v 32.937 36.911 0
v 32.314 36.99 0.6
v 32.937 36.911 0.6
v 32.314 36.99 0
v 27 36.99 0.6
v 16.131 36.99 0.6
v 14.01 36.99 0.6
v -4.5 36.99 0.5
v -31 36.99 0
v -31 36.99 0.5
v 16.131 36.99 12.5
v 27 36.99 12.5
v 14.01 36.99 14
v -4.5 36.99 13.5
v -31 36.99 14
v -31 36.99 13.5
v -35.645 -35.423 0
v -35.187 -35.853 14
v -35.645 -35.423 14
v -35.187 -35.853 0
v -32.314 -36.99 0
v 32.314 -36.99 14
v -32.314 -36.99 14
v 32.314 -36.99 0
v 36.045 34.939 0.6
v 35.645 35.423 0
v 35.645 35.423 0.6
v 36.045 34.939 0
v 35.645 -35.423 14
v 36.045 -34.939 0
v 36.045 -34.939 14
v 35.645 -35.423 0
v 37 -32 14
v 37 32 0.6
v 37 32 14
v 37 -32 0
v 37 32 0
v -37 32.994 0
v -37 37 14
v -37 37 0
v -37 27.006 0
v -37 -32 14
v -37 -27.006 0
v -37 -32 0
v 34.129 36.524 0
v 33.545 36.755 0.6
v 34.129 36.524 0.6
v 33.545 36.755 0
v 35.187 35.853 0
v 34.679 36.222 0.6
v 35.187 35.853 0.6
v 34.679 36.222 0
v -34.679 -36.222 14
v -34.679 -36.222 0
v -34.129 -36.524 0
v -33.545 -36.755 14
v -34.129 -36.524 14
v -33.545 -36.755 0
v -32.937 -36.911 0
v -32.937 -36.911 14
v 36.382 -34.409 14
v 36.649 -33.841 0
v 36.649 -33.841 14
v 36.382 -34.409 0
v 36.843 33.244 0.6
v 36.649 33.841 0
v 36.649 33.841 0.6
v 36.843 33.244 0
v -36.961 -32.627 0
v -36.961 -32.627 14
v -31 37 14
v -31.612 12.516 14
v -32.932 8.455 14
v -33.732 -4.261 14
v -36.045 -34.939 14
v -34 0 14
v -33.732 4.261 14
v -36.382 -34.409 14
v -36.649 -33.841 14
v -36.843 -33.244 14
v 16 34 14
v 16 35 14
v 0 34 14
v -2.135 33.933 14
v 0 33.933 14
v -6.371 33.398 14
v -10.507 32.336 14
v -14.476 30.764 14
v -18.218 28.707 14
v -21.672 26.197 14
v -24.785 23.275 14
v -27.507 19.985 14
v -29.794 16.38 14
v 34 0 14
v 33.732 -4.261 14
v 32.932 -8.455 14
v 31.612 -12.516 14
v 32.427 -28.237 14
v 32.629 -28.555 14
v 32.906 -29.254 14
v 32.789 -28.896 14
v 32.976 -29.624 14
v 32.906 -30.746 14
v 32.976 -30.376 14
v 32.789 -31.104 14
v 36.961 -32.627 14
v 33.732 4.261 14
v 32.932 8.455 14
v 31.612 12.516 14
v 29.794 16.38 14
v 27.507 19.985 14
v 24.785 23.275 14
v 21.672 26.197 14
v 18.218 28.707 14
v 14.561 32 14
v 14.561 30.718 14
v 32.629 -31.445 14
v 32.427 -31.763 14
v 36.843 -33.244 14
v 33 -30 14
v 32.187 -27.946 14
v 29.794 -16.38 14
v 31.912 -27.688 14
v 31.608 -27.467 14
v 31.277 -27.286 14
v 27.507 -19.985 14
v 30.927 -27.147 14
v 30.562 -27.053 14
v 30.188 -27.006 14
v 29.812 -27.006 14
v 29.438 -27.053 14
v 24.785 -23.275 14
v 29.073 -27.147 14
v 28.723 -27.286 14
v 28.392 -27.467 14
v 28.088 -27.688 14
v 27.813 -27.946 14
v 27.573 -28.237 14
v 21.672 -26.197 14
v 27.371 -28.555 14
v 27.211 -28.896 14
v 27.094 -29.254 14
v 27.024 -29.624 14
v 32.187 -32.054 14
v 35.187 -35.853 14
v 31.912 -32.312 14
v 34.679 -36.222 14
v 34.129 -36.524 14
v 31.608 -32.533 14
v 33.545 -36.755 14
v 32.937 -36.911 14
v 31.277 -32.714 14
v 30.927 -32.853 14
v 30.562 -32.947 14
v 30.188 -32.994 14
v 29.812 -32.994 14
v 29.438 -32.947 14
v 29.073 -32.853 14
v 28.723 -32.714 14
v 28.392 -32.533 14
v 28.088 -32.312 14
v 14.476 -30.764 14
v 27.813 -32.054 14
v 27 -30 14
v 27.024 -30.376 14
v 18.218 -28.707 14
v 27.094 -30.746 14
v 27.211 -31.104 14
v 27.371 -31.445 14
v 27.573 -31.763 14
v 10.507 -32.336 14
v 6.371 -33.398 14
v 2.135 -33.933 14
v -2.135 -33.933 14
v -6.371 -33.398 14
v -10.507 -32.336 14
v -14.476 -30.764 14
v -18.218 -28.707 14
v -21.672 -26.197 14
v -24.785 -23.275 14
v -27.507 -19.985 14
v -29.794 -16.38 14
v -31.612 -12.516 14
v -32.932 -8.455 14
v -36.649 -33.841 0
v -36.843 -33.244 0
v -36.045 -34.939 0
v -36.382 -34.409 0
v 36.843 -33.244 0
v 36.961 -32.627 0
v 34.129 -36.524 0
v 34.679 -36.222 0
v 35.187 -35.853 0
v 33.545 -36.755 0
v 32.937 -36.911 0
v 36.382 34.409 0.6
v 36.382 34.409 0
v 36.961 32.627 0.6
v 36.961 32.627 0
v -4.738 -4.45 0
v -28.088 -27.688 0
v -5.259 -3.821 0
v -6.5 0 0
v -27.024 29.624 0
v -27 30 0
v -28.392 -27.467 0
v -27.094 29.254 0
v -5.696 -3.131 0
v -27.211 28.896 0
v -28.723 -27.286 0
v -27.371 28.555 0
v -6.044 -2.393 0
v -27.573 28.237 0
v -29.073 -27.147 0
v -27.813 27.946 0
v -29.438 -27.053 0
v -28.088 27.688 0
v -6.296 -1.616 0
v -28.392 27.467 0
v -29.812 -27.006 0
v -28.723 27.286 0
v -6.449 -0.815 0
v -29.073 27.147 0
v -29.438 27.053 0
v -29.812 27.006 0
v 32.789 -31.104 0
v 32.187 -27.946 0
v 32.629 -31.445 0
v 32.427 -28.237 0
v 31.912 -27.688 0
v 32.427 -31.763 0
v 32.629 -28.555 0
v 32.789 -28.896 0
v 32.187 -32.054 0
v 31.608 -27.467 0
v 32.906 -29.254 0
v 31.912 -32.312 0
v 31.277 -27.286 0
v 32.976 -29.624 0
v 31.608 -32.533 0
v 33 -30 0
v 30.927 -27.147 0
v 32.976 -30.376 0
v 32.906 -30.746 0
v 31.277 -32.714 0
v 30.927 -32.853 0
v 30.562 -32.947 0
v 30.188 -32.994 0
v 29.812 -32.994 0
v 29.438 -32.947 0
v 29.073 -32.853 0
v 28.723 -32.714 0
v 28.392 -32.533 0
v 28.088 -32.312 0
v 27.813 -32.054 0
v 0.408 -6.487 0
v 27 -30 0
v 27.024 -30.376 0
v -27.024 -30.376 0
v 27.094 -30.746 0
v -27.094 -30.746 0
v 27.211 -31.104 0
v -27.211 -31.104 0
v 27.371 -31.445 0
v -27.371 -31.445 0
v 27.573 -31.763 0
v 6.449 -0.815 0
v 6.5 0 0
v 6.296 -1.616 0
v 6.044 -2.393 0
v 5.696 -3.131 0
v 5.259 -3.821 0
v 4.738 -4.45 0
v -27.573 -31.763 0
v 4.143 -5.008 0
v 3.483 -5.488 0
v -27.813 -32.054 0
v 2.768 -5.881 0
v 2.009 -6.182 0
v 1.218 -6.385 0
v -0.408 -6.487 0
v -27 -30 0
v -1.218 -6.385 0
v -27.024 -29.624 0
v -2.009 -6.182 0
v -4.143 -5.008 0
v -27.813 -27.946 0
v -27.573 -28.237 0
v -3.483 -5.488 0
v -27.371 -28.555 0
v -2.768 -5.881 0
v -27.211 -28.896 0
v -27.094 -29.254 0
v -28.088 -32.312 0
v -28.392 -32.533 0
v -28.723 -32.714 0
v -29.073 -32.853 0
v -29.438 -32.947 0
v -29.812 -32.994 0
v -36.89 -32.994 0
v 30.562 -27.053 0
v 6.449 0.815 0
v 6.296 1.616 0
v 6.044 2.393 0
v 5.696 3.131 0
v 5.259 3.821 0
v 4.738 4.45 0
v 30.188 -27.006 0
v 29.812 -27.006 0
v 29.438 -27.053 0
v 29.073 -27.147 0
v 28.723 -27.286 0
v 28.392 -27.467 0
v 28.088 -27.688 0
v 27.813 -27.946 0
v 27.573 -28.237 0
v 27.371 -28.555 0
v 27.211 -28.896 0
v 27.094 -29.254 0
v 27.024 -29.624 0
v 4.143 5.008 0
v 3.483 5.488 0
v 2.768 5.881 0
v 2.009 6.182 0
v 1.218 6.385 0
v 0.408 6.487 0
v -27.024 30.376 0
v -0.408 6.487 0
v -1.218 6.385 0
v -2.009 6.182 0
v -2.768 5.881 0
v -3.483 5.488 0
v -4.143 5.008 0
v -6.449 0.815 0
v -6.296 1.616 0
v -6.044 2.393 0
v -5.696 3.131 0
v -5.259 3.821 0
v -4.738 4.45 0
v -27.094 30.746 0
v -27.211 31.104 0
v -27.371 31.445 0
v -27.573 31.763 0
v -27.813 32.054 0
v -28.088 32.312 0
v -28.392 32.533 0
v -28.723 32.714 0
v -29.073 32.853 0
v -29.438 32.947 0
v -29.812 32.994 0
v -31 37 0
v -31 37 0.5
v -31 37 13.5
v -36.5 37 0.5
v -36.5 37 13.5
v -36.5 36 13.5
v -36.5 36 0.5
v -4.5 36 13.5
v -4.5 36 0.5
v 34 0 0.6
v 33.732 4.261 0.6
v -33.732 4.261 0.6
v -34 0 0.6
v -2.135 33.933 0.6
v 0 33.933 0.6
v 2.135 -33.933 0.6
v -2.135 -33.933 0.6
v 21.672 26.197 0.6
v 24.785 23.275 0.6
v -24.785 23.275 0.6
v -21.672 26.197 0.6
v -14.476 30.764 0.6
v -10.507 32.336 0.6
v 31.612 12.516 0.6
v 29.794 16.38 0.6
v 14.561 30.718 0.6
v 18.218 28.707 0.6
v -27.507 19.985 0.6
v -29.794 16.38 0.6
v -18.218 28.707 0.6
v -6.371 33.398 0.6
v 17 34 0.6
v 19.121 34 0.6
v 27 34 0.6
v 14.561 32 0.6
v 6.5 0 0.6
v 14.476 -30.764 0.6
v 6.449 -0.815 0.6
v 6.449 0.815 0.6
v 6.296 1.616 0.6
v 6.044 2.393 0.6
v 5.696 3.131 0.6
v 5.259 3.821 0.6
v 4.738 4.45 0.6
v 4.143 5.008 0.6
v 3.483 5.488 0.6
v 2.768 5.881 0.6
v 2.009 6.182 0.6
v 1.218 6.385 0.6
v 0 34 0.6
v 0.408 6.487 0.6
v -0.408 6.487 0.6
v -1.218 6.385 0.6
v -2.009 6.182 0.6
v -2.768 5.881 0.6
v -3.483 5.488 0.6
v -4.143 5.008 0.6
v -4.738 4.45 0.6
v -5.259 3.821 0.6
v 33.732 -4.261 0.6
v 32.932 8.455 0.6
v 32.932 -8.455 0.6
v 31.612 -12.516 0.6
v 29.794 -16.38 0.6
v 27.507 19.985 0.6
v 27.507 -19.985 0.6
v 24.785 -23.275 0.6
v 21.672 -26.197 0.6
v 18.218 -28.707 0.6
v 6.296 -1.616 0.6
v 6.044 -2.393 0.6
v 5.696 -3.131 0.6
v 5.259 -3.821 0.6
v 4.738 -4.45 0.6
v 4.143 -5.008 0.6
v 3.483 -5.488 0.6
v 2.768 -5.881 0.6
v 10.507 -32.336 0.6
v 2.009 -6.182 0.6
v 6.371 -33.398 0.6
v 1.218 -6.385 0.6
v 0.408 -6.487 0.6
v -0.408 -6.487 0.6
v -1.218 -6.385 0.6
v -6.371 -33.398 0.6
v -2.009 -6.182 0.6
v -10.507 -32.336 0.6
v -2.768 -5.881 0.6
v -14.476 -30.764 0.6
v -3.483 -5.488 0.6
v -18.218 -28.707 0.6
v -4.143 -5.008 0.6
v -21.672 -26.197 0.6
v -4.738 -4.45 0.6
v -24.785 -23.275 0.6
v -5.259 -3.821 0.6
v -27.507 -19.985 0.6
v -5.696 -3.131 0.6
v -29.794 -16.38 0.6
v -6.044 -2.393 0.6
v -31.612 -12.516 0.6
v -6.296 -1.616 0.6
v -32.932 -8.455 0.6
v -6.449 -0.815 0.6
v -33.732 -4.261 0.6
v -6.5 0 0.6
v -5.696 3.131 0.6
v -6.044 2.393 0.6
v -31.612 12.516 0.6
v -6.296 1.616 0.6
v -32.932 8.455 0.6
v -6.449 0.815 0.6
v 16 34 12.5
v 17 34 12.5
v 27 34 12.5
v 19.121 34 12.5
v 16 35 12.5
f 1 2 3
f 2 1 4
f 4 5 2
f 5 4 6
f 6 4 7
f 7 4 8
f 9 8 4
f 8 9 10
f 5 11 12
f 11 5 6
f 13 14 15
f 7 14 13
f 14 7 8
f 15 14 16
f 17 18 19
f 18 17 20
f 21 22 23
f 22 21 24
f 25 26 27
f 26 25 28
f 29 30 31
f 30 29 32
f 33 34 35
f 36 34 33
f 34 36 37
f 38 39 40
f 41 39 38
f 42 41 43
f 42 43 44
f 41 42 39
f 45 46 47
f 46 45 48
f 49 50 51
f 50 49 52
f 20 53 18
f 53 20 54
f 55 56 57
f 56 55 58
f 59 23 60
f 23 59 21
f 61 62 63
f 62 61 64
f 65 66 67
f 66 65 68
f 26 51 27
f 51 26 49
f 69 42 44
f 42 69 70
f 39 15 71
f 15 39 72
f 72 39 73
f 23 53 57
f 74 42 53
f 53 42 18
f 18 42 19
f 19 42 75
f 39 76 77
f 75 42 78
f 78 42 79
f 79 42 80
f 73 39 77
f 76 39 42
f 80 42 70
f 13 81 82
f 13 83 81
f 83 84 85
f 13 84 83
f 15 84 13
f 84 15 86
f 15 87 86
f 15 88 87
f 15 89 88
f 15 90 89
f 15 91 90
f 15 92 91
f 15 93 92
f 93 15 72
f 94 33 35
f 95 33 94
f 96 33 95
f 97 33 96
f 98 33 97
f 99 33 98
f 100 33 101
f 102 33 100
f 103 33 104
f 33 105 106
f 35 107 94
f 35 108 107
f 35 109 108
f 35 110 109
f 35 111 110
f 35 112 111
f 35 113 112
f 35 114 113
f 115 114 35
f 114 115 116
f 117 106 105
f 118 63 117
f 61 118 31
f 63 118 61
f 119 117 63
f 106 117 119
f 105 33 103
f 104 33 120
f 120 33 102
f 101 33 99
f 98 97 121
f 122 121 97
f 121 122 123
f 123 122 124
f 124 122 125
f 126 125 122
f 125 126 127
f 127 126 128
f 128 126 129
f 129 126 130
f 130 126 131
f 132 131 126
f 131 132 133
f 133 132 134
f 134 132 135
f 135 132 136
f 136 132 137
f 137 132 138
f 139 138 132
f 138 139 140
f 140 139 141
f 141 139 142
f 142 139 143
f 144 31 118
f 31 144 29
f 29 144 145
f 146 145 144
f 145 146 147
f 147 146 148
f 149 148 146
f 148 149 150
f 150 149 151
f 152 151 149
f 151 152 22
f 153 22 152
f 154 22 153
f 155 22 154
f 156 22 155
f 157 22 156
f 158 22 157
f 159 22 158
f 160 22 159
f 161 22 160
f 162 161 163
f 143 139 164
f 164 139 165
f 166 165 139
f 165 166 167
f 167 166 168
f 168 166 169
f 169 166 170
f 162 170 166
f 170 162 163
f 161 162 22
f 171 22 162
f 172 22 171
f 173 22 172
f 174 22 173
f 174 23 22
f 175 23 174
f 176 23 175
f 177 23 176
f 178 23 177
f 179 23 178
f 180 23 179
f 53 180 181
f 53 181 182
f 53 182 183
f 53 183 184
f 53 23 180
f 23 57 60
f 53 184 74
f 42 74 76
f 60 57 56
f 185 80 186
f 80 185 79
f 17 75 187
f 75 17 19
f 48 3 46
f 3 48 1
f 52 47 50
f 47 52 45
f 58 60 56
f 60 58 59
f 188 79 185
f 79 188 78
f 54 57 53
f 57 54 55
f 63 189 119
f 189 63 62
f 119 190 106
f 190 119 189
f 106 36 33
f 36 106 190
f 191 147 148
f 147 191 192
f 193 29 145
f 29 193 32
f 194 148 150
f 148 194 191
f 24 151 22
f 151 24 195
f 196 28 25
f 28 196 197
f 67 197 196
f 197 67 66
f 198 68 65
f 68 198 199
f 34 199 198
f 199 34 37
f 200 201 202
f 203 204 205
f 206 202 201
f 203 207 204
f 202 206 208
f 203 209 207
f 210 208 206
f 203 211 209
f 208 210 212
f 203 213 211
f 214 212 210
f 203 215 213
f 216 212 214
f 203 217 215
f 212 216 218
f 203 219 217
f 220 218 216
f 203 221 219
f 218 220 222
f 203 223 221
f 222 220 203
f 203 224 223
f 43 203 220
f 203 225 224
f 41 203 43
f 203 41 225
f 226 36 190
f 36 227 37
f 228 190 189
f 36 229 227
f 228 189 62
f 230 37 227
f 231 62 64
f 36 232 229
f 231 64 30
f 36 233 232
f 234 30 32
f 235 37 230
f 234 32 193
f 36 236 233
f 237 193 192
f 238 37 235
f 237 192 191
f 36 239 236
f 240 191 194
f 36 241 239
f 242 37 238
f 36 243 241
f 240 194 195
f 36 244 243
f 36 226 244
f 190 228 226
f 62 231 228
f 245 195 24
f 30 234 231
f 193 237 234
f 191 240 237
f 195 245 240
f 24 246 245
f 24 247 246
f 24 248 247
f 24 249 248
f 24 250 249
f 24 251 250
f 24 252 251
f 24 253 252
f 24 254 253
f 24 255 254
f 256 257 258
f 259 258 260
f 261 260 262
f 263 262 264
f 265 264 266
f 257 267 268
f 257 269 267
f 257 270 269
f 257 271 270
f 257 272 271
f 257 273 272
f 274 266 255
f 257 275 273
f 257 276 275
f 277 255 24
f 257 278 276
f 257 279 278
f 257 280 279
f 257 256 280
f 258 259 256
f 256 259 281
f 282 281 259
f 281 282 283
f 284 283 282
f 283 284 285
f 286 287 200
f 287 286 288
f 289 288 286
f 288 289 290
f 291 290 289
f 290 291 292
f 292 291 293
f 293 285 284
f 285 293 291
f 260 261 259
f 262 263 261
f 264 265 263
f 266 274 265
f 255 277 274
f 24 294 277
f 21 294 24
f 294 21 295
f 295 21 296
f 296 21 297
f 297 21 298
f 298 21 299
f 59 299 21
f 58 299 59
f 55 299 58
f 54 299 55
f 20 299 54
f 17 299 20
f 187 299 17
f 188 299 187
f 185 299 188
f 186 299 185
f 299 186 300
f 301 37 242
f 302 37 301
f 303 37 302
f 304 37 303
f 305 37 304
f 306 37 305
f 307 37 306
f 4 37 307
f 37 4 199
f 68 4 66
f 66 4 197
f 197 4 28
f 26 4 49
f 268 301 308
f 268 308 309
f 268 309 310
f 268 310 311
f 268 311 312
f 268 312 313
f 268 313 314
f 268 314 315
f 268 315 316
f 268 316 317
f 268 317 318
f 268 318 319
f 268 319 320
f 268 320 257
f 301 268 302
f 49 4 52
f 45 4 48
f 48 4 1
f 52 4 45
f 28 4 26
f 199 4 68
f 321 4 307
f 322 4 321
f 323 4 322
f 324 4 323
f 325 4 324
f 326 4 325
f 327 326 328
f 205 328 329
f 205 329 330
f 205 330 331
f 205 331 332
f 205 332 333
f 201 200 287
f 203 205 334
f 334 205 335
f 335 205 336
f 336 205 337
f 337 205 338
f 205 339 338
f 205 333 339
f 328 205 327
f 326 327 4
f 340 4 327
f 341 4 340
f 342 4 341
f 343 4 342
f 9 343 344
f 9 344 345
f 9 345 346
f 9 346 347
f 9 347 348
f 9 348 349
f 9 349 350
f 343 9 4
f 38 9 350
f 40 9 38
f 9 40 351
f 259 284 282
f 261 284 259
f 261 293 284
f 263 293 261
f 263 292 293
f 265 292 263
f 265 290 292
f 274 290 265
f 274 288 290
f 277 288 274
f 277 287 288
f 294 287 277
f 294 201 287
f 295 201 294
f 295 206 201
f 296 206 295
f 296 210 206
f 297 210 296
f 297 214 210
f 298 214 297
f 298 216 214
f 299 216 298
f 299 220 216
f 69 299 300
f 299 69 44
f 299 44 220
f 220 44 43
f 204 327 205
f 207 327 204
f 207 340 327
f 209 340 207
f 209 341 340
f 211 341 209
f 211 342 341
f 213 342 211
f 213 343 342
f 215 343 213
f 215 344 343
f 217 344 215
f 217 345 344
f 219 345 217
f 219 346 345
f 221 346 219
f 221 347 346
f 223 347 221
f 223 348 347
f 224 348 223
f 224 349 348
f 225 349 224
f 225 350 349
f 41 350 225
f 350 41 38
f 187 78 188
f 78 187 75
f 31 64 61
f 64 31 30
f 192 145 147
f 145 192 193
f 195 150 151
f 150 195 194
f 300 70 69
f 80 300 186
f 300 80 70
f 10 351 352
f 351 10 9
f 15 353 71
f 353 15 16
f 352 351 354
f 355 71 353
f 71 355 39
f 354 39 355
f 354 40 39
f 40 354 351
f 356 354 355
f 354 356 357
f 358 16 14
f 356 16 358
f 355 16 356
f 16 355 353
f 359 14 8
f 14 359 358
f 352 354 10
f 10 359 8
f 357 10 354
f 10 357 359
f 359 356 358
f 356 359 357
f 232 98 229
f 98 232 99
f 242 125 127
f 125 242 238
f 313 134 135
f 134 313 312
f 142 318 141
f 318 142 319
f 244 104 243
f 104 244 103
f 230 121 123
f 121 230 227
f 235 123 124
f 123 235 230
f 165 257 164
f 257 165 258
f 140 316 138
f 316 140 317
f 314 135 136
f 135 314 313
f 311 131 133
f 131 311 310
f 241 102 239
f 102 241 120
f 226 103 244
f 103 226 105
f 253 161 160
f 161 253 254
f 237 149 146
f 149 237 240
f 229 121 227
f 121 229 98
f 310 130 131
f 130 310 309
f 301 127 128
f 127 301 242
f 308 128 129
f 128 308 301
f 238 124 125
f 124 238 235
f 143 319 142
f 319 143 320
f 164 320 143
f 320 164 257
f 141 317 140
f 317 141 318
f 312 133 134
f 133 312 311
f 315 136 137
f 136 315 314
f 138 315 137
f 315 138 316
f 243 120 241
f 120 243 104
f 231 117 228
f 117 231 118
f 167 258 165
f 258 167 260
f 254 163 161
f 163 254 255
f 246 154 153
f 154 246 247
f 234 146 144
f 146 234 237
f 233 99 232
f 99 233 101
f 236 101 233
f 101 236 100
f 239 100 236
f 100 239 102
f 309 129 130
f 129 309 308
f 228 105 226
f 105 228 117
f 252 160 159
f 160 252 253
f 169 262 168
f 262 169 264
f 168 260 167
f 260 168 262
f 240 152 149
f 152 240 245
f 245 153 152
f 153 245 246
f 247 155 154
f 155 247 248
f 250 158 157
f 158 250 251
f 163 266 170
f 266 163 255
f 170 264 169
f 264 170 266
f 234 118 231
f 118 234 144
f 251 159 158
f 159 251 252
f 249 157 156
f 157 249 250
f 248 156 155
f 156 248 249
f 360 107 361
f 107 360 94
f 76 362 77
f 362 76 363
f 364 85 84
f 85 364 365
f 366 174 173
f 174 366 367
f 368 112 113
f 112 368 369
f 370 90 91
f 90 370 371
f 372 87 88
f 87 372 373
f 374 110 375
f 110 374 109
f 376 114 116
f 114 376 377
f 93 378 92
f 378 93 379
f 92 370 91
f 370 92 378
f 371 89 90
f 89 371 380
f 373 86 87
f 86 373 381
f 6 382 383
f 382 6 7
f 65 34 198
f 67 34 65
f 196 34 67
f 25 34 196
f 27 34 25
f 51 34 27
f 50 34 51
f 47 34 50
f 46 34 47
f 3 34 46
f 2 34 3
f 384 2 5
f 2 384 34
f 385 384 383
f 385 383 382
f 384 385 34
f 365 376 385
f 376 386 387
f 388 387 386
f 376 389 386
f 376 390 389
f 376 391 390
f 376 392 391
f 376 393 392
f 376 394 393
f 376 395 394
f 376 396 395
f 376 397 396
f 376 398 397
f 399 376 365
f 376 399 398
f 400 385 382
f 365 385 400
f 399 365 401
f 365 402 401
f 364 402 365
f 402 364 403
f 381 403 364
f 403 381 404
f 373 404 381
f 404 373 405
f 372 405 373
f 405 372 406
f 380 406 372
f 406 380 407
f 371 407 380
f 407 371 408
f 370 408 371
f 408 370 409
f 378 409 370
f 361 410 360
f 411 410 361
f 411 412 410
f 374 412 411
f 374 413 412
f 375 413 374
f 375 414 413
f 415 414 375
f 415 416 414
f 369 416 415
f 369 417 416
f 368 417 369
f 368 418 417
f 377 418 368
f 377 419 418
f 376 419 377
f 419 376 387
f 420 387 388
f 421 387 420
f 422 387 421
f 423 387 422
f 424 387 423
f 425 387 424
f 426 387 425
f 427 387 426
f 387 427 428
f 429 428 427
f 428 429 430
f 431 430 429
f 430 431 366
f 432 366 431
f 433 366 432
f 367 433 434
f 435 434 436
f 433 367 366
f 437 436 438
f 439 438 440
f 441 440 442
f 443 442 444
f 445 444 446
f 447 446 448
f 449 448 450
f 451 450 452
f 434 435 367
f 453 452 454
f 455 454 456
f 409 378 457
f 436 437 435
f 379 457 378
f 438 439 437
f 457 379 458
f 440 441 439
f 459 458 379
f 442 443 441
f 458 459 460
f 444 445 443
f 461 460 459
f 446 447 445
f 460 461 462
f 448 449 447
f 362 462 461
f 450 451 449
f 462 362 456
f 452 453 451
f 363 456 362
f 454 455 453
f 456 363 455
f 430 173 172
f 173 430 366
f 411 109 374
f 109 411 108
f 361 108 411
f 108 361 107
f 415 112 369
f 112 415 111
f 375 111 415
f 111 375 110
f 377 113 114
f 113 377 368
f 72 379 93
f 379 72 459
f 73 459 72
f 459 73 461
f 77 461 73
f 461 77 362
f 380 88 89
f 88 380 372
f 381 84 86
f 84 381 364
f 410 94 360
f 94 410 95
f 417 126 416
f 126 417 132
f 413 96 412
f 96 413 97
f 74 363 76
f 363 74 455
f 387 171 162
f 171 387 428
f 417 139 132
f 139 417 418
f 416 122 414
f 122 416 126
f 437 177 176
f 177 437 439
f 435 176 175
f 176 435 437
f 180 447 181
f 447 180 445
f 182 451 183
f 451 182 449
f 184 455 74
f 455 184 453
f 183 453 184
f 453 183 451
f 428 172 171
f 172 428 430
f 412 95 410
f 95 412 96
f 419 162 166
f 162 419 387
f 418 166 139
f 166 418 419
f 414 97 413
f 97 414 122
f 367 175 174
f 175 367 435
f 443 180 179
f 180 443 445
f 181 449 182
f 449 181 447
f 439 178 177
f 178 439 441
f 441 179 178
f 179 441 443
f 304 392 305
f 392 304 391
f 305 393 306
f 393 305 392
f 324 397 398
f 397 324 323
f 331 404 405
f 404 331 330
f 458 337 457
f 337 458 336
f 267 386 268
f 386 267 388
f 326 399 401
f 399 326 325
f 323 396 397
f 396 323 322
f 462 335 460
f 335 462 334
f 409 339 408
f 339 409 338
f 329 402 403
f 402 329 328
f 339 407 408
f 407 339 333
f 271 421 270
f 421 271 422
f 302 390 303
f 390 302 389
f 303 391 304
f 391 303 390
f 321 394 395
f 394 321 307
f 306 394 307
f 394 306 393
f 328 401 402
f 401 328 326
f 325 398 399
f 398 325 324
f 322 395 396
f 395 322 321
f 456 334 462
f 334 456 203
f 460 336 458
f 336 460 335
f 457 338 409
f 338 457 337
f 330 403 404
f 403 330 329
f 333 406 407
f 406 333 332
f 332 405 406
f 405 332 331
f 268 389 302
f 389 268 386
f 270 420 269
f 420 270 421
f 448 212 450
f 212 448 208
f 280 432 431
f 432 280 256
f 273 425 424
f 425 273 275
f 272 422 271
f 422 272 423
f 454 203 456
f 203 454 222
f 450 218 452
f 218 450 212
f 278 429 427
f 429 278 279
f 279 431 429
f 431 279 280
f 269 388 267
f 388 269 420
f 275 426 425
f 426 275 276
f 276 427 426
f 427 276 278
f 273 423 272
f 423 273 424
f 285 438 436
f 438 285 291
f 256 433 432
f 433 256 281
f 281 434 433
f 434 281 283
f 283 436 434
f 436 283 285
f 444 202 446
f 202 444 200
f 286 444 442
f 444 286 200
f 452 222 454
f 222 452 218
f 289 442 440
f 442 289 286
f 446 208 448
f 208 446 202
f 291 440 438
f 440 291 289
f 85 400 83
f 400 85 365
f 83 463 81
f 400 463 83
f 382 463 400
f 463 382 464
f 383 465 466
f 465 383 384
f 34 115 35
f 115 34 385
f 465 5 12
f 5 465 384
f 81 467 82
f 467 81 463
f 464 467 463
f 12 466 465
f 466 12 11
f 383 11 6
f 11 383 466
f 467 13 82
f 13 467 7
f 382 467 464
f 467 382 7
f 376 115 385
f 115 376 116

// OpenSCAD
$fn = 50;


difference() {
	union() {
		hull() {
			translate(v = [-32.0000000000, 32.0000000000, 0]) {
				cylinder(h = 14, r = 5);
			}
			translate(v = [32.0000000000, 32.0000000000, 0]) {
				cylinder(h = 14, r = 5);
			}
			translate(v = [-32.0000000000, -32.0000000000, 0]) {
				cylinder(h = 14, r = 5);
			}
			translate(v = [32.0000000000, -32.0000000000, 0]) {
				cylinder(h = 14, r = 5);
			}
		}
		translate(v = [-37.0000000000, 31.0000000000, 0]) {
			cube(size = [6, 6, 14]);
		}
	}
	union() {
		translate(v = [-37.5000000000, -30.0000000000, -250.0000000000]) {
			rotate(a = [0, 0, 0]) {
				difference() {
					union() {
						hull() {
							translate(v = [7.5000000000, 0, 0]) {
								cylinder(h = 250, r = 3.0000000000, r1 = 3.0000000000, r2 = 3.0000000000);
							}
							translate(v = [-7.5000000000, 0, 0]) {
								cylinder(h = 250, r = 3.0000000000, r1 = 3.0000000000, r2 = 3.0000000000);
							}
						}
					}
					union();
				}
			}
		}
		translate(v = [-37.5000000000, 30.0000000000, -250.0000000000]) {
			rotate(a = [0, 0, 0]) {
				difference() {
					union() {
						hull() {
							translate(v = [7.5000000000, 0, 0]) {
								cylinder(h = 250, r = 3.0000000000, r1 = 3.0000000000, r2 = 3.0000000000);
							}
							translate(v = [-7.5000000000, 0, 0]) {
								cylinder(h = 250, r = 3.0000000000, r1 = 3.0000000000, r2 = 3.0000000000);
							}
						}
					}
					union();
				}
			}
		}
		translate(v = [-36.5000000000, 36.0000000000, 0.5000000000]) {
			cube(size = [32, 1, 13.0000000000]);
		}
		translate(v = [30.0000000000, -30.0000000000, -50.0000000000]) {
			cylinder(h = 100, r = 3.0000000000);
		}
		translate(v = [0, 0, 0.6000000000]) {
			cylinder(h = 16.4000000000, r = 34.0000000000);
		}
		translate(v = [0, 0, -7.0000000000]) {
			cylinder(h = 14, r = 6.5000000000);
		}
		translate(v = [0.0000000000, 32.0000000000, 0.6000000000]) {
			cube(size = [37.0000000000, 2, 16.4000000000]);
		}
		translate(v = [27.0000000000, 32.0000000000, 0.6000000000]) {
			cube(size = [10, 5, 16.4000000000]);
		}
		translate(v = [16.0000000000, 32.0000000000, 12.5000000000]) {
			cube(size = [21, 5, 1.5000000000]);
		}
		translate(v = [13.2500000000, 37.7500000000, 0.6000000000]) {
			rotate(a = [0, 0, -45]) {
				cube(size = [7.5000000000, 1.5000000000, 16.4000000000]);
			}
		}
		translate(v = [7.0610000000, 30.0000000000, 0.6000000000]) {
			cube(size = [7.5000000000, 2, 13.4000000000]);
		}
	}
}
